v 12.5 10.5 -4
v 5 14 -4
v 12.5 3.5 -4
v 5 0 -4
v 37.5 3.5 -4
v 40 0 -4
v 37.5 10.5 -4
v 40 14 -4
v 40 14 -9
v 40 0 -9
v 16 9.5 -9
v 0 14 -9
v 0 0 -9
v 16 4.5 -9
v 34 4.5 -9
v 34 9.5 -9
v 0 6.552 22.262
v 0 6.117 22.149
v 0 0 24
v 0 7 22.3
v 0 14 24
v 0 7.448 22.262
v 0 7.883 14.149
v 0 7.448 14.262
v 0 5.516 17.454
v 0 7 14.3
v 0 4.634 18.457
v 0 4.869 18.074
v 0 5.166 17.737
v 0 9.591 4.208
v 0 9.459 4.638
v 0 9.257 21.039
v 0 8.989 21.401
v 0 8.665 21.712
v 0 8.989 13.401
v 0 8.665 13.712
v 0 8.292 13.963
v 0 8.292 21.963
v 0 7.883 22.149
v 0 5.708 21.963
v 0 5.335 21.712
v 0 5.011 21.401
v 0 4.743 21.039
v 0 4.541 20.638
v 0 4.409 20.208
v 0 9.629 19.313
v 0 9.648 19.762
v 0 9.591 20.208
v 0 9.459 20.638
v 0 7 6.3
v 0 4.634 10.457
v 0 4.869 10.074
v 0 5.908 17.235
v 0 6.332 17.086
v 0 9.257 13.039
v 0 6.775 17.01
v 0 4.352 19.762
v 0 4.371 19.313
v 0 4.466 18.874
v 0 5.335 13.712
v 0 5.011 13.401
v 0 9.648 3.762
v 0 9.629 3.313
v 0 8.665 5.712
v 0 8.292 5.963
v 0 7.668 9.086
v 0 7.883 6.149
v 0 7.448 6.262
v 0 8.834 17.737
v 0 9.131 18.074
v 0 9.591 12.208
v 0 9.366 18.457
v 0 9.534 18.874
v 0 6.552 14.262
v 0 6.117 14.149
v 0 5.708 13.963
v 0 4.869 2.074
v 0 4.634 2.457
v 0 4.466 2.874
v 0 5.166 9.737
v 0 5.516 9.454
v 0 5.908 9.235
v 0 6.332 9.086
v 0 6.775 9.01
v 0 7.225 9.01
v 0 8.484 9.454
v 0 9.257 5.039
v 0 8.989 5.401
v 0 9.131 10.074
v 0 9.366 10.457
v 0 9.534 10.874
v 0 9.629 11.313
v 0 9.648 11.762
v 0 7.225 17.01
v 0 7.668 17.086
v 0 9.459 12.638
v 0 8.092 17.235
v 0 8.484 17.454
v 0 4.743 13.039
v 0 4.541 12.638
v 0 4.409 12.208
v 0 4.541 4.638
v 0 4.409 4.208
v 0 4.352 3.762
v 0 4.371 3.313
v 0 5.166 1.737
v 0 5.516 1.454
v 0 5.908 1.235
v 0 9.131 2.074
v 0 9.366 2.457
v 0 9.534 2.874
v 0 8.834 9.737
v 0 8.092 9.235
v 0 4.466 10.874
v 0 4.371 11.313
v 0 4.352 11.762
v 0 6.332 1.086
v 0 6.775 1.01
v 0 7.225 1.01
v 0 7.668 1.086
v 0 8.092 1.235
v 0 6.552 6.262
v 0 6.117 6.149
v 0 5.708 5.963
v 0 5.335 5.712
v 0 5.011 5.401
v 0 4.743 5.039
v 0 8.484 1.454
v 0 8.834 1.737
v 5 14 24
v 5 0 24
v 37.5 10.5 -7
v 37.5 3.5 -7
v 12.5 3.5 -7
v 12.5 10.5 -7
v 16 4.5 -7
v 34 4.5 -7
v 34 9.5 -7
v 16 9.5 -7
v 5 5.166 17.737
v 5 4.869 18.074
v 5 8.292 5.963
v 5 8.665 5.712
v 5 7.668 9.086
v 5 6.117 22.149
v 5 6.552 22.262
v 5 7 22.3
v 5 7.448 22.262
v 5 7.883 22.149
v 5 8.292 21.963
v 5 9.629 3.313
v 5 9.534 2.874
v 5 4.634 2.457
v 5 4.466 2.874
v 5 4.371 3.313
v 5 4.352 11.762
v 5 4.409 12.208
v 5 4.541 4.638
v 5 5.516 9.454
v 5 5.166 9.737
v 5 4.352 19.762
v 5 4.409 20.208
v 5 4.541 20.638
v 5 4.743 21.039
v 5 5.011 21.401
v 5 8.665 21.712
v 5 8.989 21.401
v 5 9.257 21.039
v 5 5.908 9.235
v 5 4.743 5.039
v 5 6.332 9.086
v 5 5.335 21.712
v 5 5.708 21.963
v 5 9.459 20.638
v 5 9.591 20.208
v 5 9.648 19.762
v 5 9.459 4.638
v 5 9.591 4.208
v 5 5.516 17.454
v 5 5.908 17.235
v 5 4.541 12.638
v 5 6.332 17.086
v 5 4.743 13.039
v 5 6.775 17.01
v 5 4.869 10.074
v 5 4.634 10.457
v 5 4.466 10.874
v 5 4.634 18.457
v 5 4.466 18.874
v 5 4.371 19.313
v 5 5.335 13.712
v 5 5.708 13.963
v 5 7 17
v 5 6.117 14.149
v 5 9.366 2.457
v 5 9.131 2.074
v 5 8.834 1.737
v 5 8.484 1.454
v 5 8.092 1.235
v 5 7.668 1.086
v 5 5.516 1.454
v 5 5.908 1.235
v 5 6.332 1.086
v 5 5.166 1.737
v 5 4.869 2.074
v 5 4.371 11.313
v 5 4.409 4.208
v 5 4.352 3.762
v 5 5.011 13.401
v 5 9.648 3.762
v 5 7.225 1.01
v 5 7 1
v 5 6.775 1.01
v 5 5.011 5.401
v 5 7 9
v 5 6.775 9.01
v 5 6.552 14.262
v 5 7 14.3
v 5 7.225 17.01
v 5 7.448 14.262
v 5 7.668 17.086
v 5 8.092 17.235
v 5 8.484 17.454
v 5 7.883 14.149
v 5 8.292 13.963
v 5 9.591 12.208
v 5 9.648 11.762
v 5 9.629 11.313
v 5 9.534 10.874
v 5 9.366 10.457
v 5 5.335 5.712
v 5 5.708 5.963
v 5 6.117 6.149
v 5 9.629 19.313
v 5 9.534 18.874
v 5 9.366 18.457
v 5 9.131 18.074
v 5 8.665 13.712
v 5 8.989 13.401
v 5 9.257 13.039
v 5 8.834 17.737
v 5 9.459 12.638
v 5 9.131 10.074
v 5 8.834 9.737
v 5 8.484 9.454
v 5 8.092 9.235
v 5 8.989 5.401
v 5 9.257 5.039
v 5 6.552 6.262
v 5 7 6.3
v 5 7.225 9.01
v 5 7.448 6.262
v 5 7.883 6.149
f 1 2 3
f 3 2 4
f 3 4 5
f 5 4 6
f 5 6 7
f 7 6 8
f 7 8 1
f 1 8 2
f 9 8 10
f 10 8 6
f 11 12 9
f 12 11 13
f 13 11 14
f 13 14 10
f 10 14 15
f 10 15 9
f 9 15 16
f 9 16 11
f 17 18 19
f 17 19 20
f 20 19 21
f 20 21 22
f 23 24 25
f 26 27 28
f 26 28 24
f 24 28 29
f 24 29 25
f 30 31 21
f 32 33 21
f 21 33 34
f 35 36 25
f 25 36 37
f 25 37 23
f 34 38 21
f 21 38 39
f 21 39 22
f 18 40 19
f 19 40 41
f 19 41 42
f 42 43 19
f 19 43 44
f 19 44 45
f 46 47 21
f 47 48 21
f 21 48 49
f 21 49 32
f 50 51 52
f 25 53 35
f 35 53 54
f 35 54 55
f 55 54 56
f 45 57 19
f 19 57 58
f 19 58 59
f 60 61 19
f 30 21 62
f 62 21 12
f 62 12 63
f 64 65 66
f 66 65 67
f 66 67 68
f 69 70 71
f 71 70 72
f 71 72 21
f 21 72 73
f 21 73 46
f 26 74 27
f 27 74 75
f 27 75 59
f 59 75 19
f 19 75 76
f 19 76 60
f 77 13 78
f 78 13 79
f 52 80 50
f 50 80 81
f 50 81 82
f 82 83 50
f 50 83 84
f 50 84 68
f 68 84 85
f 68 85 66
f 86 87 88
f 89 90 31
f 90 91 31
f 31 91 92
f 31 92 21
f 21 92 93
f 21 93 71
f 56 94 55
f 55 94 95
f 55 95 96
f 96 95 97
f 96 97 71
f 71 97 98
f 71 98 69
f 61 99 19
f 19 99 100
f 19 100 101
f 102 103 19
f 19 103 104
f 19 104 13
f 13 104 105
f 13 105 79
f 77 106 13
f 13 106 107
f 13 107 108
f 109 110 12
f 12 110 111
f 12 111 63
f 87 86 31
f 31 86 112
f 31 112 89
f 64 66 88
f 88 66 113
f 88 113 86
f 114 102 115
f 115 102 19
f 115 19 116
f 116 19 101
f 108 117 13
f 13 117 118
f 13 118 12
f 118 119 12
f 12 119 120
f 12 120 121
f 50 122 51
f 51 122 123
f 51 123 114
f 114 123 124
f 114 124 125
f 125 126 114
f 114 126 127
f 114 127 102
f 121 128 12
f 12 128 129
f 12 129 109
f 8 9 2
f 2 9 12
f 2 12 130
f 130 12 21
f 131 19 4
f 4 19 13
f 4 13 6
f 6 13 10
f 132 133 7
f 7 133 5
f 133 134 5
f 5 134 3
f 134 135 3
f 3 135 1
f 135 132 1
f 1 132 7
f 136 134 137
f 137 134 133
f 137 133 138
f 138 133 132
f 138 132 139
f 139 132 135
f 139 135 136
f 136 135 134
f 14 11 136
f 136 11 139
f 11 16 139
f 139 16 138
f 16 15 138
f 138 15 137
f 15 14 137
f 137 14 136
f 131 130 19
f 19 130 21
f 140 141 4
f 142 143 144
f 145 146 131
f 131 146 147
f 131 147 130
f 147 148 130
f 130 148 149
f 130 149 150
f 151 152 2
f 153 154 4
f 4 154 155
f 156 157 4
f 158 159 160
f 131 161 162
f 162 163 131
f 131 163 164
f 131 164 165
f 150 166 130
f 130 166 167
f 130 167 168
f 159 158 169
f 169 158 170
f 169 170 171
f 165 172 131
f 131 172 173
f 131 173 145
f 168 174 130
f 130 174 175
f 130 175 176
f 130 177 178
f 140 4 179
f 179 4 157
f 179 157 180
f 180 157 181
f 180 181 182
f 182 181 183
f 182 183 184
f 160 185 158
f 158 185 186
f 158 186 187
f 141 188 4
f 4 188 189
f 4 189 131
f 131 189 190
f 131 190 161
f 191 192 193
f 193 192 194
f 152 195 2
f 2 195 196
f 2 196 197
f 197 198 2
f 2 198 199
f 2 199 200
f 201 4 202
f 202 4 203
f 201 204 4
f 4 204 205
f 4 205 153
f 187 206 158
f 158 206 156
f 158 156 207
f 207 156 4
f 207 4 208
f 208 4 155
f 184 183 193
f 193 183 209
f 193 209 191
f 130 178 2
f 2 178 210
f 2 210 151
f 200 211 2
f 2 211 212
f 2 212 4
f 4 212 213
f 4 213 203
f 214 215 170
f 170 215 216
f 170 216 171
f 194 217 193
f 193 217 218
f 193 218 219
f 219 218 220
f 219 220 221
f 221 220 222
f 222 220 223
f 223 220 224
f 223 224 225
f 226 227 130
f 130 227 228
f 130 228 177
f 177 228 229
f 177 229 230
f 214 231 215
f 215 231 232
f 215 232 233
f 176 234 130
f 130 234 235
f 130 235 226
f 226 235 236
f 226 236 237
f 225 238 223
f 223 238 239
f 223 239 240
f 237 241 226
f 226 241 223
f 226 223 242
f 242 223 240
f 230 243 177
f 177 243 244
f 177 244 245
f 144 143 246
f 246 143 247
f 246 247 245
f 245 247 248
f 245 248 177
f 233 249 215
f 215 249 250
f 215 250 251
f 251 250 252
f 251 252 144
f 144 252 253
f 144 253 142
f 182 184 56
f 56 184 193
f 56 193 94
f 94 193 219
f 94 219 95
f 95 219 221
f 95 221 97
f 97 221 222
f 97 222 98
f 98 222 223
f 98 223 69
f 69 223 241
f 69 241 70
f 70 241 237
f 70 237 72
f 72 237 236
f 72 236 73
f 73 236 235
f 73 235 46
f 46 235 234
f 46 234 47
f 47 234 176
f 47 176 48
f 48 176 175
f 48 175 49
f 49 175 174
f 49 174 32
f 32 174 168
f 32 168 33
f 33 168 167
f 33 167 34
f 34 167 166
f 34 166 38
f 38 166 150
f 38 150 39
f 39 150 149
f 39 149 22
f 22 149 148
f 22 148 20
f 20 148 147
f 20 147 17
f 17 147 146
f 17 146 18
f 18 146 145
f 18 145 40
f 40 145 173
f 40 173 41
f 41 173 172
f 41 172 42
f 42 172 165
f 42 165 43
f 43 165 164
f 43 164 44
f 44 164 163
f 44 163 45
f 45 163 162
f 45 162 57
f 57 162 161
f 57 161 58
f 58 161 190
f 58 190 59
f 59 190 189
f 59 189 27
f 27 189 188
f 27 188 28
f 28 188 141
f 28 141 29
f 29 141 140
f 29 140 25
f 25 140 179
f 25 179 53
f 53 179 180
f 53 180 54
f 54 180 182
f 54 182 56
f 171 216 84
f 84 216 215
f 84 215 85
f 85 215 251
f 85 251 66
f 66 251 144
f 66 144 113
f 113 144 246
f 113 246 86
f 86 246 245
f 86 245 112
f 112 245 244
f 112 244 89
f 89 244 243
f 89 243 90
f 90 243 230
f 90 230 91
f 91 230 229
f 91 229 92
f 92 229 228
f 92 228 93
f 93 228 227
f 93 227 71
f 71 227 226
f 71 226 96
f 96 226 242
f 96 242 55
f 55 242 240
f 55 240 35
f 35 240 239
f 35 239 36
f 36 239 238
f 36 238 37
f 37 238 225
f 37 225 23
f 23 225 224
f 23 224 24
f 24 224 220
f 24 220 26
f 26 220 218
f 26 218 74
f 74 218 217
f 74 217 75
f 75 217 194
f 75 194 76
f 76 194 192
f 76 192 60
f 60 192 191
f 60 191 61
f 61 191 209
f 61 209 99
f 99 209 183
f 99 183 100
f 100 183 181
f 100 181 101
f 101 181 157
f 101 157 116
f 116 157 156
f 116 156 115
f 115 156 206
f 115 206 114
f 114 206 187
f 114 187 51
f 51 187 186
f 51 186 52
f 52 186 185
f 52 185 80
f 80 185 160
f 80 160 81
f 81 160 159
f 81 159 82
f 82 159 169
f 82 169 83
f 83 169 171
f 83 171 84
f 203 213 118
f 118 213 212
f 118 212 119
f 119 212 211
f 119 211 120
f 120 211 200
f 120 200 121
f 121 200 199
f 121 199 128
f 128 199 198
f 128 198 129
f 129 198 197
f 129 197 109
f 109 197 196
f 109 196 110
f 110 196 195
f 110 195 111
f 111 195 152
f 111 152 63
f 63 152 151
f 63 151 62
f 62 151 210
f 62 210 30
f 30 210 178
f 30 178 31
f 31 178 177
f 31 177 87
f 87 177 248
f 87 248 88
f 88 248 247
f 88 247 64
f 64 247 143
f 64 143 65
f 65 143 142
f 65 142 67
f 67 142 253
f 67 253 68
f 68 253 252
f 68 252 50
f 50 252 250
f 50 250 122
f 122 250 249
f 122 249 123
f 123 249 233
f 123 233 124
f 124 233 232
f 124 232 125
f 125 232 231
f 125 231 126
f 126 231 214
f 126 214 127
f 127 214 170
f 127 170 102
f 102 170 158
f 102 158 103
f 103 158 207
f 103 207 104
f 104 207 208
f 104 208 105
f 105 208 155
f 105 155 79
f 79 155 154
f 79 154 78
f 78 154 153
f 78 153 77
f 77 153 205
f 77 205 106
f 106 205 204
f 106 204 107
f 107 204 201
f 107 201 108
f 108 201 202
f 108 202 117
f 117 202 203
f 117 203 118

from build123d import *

# Parameters (mm, degrees)
BOSS_EXTRUDE1_DEPTH  = 14
SKETCH2_W            = 25
SKETCH2_H            = 7
CUT_EXTRUDE3_DEPTH   = 3
SKETCH10_W           = 18
SKETCH10_H           = 5
CUT_EXTRUDE4_DEPTH   = 43.95346319
SKETCH20_W           = 24
SKETCH20_H           = 14
BOSS_EXTRUDE10_DEPTH = 5
SKETCH21_R           = 2.65
CUT_EXTRUDE13_DEPTH  = 5
SKETCH22_W           = 5
SKETCH22_H           = 4
CUT_EXTRUDE14_DEPTH  = 49.703182648
SKETCH23_R           = 2.65
BOSS_EXTRUDE11_DEPTH = 5


with BuildPart() as part:
    # Sketch1 → Boss-Extrude1 (new body)
    with BuildSketch(Plane(origin=(0, 0, 0), x_dir=(1, 0, 0), z_dir=(0, 1, 0))):
        Polygon((6.589095597, 0), (10, 0), (10, 4), (40, 4), (40, 9), (11.589095597, 9), (0, 9), (0, 0), align=None)
    extrude(amount=BOSS_EXTRUDE1_DEPTH)

    # Sketch2 → Cut-Extrude3 (cut)
    with BuildSketch(Plane.XY.offset(-4)):
        with Locations((25, 7)):
            Rectangle(SKETCH2_W, SKETCH2_H)
    extrude(amount=-CUT_EXTRUDE3_DEPTH, mode=Mode.SUBTRACT)

    # Sketch10 → Cut-Extrude4 (cut, through all)
    with BuildSketch(Plane.XY.offset(-7)):
        with Locations((25, 7)):
            Rectangle(SKETCH10_W, SKETCH10_H)
    extrude(amount=-CUT_EXTRUDE4_DEPTH, mode=Mode.SUBTRACT)

    # Sketch20 → Boss-Extrude10 (add)
    with BuildSketch(Plane.ZY):
        with Locations((12, 7)):
            Rectangle(SKETCH20_W, SKETCH20_H)
    extrude(amount=-BOSS_EXTRUDE10_DEPTH)

    # Sketch21 → Cut-Extrude13 (cut)
    with BuildSketch(Plane.ZY):
        with Locations((-4.35, 7)):
            Circle(SKETCH21_R)
        with Locations((3.65, 7)):
            Circle(SKETCH21_R)
        with Locations((11.65, 7)):
            Circle(SKETCH21_R)
        with Locations((19.65, 7)):
            Circle(SKETCH21_R)
    extrude(amount=-CUT_EXTRUDE13_DEPTH, mode=Mode.SUBTRACT)

    # Sketch22 → Cut-Extrude14 (cut, through all)
    with BuildSketch(Plane(origin=(0, 14, 0), x_dir=(1, 0, 0), z_dir=(0, 1, 0))):
        with Locations((7.5, 2)):
            Rectangle(SKETCH22_W, SKETCH22_H)
    extrude(amount=-CUT_EXTRUDE14_DEPTH, mode=Mode.SUBTRACT)

    # Sketch23 → Boss-Extrude11 (add)
    with BuildSketch(Plane.ZY):
        with Locations((-4.35, 7)):
            Circle(SKETCH23_R)
    extrude(amount=-BOSS_EXTRUDE11_DEPTH)


solid = part.part
